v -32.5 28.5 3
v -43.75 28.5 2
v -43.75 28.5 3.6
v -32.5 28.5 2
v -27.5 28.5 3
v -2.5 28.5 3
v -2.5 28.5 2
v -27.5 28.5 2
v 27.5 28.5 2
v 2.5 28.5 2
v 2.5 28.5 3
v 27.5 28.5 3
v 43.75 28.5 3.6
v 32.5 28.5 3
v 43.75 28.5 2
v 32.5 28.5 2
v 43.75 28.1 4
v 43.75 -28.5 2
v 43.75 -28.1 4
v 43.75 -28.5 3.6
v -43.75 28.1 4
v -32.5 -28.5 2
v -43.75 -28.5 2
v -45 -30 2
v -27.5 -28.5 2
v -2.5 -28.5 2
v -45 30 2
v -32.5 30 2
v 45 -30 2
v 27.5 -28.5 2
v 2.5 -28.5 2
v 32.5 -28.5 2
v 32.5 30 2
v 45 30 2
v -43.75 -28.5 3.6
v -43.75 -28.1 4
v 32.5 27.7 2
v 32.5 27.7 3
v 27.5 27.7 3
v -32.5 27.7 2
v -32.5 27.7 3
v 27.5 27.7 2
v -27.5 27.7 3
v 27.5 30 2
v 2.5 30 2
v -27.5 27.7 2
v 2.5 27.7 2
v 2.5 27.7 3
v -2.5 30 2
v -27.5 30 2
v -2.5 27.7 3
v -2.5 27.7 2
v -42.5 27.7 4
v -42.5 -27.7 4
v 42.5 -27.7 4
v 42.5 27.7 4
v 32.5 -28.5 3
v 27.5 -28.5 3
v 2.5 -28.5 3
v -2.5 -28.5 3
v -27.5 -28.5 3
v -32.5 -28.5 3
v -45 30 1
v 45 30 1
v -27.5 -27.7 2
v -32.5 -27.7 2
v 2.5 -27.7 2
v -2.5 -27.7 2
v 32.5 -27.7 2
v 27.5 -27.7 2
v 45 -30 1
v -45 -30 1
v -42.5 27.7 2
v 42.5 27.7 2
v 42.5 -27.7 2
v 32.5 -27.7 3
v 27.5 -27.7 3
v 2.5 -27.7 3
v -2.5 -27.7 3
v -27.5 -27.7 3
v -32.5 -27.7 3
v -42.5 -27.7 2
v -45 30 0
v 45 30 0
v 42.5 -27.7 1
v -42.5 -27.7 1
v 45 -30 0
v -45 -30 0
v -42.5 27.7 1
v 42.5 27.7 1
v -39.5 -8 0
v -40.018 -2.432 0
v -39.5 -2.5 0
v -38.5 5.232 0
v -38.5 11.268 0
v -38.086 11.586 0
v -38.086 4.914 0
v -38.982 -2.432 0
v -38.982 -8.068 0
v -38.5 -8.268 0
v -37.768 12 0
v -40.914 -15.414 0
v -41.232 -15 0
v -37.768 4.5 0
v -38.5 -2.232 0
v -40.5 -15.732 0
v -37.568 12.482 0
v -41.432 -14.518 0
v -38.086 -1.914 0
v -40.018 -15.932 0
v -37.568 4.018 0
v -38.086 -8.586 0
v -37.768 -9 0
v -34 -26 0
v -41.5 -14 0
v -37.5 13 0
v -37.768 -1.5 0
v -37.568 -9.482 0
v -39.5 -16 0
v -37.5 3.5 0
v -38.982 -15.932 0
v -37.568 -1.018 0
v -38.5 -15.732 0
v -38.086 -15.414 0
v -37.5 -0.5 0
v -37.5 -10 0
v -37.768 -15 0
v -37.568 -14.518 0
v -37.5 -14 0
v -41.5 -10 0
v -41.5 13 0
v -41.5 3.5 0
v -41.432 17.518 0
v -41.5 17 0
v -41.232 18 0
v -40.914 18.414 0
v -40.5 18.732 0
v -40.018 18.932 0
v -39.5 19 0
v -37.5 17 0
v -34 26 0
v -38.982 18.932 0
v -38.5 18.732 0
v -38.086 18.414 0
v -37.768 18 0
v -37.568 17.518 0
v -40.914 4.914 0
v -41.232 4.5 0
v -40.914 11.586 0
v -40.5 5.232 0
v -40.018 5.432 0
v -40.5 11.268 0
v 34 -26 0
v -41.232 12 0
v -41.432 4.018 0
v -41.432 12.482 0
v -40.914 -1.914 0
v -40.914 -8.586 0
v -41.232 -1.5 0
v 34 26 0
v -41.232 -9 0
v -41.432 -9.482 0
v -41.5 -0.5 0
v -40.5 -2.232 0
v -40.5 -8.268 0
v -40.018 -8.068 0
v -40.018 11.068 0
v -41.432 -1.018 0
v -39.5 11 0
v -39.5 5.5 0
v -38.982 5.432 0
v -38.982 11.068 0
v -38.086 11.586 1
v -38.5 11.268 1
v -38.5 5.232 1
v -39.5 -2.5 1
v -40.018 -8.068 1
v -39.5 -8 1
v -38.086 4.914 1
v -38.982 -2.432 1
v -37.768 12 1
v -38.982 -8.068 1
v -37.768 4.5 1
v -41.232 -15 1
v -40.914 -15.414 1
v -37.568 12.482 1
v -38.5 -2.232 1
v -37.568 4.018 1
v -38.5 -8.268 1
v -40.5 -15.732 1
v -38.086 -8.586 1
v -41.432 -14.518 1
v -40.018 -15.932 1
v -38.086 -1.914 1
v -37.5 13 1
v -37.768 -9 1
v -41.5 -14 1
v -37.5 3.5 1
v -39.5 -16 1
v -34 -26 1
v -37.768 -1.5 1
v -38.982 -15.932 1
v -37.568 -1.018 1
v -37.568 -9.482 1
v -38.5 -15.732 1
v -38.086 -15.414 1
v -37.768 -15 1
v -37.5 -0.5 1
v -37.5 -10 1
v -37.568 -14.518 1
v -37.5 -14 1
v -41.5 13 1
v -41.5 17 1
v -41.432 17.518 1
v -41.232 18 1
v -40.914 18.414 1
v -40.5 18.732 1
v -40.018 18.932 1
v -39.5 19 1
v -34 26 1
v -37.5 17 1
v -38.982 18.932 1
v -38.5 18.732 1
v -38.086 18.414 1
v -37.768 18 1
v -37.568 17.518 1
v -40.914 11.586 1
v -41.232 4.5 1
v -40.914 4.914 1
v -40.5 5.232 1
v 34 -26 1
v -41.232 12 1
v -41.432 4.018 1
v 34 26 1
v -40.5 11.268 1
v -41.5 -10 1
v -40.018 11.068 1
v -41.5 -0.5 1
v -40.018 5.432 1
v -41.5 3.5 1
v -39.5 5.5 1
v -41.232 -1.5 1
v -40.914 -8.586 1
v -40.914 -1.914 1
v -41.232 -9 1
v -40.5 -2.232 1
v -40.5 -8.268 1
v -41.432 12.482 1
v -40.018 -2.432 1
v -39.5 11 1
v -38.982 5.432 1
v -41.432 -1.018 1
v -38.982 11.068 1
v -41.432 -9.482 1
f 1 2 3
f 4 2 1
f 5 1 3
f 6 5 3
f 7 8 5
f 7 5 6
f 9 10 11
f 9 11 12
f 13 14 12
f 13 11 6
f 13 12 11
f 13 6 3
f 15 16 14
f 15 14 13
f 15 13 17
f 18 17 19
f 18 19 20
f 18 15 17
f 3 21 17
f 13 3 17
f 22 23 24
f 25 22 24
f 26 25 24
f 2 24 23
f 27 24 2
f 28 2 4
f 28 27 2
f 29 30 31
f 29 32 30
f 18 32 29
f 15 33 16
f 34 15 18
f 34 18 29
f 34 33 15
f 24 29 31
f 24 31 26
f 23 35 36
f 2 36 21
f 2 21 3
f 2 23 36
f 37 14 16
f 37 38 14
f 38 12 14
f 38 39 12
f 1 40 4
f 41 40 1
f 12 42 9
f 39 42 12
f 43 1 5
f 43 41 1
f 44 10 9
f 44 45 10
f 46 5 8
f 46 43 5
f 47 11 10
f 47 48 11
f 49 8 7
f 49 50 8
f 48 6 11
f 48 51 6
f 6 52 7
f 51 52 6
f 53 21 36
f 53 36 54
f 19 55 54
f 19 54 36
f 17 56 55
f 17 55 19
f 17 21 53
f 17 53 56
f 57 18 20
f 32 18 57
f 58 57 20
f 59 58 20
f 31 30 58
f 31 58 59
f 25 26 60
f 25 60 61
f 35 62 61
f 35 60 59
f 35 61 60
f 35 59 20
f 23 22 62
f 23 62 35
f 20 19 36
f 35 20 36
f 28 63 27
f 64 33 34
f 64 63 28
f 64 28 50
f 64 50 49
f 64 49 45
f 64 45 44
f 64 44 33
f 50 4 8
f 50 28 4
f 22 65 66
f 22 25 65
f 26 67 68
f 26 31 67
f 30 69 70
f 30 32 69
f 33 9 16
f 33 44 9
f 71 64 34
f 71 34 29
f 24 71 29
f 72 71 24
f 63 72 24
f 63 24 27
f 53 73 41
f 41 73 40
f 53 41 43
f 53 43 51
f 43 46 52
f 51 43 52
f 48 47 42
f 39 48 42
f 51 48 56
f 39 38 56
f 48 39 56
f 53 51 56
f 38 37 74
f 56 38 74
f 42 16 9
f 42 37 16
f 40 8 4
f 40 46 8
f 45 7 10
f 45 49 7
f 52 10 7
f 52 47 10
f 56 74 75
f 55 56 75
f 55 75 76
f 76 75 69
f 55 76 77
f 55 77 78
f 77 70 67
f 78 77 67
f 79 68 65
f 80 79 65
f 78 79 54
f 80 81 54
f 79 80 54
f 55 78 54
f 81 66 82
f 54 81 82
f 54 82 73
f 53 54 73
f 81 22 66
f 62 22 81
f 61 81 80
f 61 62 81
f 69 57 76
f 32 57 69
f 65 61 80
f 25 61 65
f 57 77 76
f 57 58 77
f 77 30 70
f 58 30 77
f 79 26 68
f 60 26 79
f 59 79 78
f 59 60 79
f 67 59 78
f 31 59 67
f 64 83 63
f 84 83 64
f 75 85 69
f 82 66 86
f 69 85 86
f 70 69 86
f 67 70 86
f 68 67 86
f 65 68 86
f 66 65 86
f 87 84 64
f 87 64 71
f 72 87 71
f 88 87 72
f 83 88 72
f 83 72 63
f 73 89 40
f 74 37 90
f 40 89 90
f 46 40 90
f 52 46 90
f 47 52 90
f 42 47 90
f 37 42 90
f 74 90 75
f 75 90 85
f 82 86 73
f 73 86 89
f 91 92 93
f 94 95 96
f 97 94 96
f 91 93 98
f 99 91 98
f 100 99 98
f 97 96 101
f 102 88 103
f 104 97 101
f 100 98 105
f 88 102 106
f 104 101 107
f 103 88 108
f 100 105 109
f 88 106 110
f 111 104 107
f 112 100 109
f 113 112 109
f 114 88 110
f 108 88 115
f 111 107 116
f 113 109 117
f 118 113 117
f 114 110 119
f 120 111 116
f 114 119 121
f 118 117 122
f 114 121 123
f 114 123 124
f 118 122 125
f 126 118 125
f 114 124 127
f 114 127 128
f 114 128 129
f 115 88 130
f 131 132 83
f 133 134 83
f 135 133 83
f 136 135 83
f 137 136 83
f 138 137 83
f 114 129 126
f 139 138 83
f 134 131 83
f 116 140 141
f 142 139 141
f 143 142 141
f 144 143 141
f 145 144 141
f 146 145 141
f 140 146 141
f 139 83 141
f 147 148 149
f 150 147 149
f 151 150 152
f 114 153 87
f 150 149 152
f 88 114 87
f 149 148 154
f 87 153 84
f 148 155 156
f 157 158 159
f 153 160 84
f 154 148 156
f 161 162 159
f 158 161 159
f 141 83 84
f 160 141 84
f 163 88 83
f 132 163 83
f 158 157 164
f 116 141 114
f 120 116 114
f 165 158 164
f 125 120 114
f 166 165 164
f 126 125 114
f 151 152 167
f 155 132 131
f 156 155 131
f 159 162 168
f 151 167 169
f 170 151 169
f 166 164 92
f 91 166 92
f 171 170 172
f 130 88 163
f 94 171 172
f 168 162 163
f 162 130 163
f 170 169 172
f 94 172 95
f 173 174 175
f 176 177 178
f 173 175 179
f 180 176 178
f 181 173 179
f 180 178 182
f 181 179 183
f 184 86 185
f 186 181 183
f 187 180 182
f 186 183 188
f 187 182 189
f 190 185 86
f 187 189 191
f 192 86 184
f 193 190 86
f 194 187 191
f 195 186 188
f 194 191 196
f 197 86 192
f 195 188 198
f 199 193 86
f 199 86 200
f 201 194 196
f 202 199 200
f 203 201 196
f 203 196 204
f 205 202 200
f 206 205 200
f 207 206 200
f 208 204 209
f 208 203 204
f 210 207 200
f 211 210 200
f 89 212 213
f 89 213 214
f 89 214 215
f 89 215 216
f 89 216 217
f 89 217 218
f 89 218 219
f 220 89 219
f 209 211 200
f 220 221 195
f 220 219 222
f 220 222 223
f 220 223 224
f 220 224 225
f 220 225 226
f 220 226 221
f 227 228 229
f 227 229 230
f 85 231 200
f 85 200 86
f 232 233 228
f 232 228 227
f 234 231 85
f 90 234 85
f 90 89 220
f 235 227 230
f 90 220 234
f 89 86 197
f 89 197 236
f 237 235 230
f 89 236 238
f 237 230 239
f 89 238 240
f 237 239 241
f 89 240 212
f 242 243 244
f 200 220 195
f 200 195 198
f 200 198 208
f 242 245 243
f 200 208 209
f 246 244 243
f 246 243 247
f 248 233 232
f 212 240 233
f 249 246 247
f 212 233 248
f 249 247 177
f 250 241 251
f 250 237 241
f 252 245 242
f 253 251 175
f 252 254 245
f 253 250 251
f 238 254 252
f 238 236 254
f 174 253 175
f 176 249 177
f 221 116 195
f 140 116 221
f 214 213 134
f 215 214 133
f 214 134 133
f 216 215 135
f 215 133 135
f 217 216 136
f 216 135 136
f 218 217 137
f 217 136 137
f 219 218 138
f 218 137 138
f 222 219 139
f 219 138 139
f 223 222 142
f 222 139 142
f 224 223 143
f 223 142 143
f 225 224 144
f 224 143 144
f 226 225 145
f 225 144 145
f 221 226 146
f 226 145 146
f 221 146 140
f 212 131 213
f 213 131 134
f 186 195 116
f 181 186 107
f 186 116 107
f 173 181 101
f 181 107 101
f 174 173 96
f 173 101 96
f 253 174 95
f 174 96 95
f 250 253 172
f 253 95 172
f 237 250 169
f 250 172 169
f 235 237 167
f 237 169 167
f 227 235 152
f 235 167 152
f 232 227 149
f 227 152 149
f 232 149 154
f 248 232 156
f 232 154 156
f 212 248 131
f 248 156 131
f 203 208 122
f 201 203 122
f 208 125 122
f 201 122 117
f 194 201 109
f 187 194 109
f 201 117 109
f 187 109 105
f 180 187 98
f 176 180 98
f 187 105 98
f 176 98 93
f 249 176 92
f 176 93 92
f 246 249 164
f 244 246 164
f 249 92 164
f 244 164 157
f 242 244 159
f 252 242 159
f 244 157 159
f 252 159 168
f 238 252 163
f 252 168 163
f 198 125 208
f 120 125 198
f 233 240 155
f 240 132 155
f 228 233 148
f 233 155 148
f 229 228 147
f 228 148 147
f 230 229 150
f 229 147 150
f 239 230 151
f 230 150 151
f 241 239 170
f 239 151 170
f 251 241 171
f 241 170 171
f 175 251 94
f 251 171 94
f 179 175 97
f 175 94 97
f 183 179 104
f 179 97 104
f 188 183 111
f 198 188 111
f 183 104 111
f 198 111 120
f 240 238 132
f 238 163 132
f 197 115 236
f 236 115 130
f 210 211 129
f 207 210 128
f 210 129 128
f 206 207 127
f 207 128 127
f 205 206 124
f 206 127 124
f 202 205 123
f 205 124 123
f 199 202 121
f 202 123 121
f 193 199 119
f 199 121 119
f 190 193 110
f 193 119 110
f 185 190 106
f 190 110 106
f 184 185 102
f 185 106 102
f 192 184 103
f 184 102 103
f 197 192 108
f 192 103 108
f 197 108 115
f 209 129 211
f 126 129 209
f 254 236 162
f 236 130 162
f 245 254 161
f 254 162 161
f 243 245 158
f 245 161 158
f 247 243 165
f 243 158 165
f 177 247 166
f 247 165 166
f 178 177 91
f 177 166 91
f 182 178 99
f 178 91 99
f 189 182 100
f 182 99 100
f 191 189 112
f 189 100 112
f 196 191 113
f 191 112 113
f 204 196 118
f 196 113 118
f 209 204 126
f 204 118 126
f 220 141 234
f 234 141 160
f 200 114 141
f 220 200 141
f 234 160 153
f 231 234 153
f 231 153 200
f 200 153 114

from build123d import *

# Parameters (mm, degrees)
SKETCH_W        = 90
SKETCH_H        = 60
SKETCH_W_2      = 68
SKETCH_H_2      = 52
PAD_DEPTH       = 1
SKETCH001_W     = 90
SKETCH001_H     = 60
SKETCH001_W_2   = 85
SKETCH001_H_2   = 55.4
PAD001_DEPTH    = 1
SKETCH002_W     = 87.5
SKETCH002_H     = 57
SKETCH002_W_2   = 85
SKETCH002_H_2   = 55.4
PAD002_DEPTH    = 2
SKETCH003_W     = 5
SKETCH003_H     = 1
POCKET_DEPTH    = 58.501
POCKET001_DEPTH = 4.001
CHAMFER_SIZE    = 0.4


with BuildPart() as part:
    # Sketch → Pad (new body)
    with BuildSketch(Plane.XY):
        Rectangle(SKETCH_W, SKETCH_H)
        Rectangle(SKETCH_W_2, SKETCH_H_2, mode=Mode.SUBTRACT)
    extrude(amount=PAD_DEPTH)

    # Sketch001 → Pad001 (new body)
    with BuildSketch(Plane.XY.offset(1)):
        Rectangle(SKETCH001_W, SKETCH001_H)
        Rectangle(SKETCH001_W_2, SKETCH001_H_2, mode=Mode.SUBTRACT)
    extrude(amount=PAD001_DEPTH)

    # Sketch002 → Pad002 (new body)
    with BuildSketch(Plane.XY.offset(2)):
        Rectangle(SKETCH002_W, SKETCH002_H)
        Rectangle(SKETCH002_W_2, SKETCH002_H_2, mode=Mode.SUBTRACT)
    extrude(amount=PAD002_DEPTH)

    # Sketch003 → Pocket (cut, through all)
    with BuildSketch(Plane.XZ.offset(28.5)):
        with Locations((-30, 2.5)):
            Rectangle(SKETCH003_W, SKETCH003_H)
        with Locations((0, 2.5)):
            Rectangle(SKETCH003_W, SKETCH003_H)
        with Locations((30, 2.5)):
            Rectangle(SKETCH003_W, SKETCH003_H)
    extrude(amount=-POCKET_DEPTH, mode=Mode.SUBTRACT)

    # Sketch004 → Pocket001 (cut, through all)
    with BuildSketch(Plane(origin=(0, 0, 0), x_dir=(1, 0, 0), z_dir=(0, 0, -1))):
        with BuildLine():
            ThreePointArc((-37.5, 14), (-39.5, 16), (-41.5, 14))
            Line((-41.5, 14), (-41.5, 10))
            ThreePointArc((-41.5, 10), (-39.5, 8), (-37.5, 10))
            Line((-37.5, 14), (-37.5, 10))
        make_face()
        with BuildLine():
            ThreePointArc((-37.5, 0.5), (-39.5, 2.5), (-41.5, 0.5))
            Line((-41.5, 0.5), (-41.5, -3.5))
            ThreePointArc((-41.5, -3.5), (-39.5, -5.5), (-37.5, -3.5))
            Line((-37.5, 0.5), (-37.5, -3.5))
        make_face()
        with BuildLine():
            ThreePointArc((-37.5, -13), (-39.5, -11), (-41.5, -13))
            Line((-41.5, -13), (-41.5, -17))
            ThreePointArc((-41.5, -17), (-39.5, -19), (-37.5, -17))
            Line((-37.5, -13), (-37.5, -17))
        make_face()
    extrude(amount=-POCKET001_DEPTH, mode=Mode.SUBTRACT)

    # Chamfer
    chamfer_edges = [part.edges().sort_by_distance(p)[0] for p in [
        (0, 28.5, 4),
        (0, -28.5, 4),
    ]]
    chamfer(chamfer_edges, length=CHAMFER_SIZE)


solid = part.part
